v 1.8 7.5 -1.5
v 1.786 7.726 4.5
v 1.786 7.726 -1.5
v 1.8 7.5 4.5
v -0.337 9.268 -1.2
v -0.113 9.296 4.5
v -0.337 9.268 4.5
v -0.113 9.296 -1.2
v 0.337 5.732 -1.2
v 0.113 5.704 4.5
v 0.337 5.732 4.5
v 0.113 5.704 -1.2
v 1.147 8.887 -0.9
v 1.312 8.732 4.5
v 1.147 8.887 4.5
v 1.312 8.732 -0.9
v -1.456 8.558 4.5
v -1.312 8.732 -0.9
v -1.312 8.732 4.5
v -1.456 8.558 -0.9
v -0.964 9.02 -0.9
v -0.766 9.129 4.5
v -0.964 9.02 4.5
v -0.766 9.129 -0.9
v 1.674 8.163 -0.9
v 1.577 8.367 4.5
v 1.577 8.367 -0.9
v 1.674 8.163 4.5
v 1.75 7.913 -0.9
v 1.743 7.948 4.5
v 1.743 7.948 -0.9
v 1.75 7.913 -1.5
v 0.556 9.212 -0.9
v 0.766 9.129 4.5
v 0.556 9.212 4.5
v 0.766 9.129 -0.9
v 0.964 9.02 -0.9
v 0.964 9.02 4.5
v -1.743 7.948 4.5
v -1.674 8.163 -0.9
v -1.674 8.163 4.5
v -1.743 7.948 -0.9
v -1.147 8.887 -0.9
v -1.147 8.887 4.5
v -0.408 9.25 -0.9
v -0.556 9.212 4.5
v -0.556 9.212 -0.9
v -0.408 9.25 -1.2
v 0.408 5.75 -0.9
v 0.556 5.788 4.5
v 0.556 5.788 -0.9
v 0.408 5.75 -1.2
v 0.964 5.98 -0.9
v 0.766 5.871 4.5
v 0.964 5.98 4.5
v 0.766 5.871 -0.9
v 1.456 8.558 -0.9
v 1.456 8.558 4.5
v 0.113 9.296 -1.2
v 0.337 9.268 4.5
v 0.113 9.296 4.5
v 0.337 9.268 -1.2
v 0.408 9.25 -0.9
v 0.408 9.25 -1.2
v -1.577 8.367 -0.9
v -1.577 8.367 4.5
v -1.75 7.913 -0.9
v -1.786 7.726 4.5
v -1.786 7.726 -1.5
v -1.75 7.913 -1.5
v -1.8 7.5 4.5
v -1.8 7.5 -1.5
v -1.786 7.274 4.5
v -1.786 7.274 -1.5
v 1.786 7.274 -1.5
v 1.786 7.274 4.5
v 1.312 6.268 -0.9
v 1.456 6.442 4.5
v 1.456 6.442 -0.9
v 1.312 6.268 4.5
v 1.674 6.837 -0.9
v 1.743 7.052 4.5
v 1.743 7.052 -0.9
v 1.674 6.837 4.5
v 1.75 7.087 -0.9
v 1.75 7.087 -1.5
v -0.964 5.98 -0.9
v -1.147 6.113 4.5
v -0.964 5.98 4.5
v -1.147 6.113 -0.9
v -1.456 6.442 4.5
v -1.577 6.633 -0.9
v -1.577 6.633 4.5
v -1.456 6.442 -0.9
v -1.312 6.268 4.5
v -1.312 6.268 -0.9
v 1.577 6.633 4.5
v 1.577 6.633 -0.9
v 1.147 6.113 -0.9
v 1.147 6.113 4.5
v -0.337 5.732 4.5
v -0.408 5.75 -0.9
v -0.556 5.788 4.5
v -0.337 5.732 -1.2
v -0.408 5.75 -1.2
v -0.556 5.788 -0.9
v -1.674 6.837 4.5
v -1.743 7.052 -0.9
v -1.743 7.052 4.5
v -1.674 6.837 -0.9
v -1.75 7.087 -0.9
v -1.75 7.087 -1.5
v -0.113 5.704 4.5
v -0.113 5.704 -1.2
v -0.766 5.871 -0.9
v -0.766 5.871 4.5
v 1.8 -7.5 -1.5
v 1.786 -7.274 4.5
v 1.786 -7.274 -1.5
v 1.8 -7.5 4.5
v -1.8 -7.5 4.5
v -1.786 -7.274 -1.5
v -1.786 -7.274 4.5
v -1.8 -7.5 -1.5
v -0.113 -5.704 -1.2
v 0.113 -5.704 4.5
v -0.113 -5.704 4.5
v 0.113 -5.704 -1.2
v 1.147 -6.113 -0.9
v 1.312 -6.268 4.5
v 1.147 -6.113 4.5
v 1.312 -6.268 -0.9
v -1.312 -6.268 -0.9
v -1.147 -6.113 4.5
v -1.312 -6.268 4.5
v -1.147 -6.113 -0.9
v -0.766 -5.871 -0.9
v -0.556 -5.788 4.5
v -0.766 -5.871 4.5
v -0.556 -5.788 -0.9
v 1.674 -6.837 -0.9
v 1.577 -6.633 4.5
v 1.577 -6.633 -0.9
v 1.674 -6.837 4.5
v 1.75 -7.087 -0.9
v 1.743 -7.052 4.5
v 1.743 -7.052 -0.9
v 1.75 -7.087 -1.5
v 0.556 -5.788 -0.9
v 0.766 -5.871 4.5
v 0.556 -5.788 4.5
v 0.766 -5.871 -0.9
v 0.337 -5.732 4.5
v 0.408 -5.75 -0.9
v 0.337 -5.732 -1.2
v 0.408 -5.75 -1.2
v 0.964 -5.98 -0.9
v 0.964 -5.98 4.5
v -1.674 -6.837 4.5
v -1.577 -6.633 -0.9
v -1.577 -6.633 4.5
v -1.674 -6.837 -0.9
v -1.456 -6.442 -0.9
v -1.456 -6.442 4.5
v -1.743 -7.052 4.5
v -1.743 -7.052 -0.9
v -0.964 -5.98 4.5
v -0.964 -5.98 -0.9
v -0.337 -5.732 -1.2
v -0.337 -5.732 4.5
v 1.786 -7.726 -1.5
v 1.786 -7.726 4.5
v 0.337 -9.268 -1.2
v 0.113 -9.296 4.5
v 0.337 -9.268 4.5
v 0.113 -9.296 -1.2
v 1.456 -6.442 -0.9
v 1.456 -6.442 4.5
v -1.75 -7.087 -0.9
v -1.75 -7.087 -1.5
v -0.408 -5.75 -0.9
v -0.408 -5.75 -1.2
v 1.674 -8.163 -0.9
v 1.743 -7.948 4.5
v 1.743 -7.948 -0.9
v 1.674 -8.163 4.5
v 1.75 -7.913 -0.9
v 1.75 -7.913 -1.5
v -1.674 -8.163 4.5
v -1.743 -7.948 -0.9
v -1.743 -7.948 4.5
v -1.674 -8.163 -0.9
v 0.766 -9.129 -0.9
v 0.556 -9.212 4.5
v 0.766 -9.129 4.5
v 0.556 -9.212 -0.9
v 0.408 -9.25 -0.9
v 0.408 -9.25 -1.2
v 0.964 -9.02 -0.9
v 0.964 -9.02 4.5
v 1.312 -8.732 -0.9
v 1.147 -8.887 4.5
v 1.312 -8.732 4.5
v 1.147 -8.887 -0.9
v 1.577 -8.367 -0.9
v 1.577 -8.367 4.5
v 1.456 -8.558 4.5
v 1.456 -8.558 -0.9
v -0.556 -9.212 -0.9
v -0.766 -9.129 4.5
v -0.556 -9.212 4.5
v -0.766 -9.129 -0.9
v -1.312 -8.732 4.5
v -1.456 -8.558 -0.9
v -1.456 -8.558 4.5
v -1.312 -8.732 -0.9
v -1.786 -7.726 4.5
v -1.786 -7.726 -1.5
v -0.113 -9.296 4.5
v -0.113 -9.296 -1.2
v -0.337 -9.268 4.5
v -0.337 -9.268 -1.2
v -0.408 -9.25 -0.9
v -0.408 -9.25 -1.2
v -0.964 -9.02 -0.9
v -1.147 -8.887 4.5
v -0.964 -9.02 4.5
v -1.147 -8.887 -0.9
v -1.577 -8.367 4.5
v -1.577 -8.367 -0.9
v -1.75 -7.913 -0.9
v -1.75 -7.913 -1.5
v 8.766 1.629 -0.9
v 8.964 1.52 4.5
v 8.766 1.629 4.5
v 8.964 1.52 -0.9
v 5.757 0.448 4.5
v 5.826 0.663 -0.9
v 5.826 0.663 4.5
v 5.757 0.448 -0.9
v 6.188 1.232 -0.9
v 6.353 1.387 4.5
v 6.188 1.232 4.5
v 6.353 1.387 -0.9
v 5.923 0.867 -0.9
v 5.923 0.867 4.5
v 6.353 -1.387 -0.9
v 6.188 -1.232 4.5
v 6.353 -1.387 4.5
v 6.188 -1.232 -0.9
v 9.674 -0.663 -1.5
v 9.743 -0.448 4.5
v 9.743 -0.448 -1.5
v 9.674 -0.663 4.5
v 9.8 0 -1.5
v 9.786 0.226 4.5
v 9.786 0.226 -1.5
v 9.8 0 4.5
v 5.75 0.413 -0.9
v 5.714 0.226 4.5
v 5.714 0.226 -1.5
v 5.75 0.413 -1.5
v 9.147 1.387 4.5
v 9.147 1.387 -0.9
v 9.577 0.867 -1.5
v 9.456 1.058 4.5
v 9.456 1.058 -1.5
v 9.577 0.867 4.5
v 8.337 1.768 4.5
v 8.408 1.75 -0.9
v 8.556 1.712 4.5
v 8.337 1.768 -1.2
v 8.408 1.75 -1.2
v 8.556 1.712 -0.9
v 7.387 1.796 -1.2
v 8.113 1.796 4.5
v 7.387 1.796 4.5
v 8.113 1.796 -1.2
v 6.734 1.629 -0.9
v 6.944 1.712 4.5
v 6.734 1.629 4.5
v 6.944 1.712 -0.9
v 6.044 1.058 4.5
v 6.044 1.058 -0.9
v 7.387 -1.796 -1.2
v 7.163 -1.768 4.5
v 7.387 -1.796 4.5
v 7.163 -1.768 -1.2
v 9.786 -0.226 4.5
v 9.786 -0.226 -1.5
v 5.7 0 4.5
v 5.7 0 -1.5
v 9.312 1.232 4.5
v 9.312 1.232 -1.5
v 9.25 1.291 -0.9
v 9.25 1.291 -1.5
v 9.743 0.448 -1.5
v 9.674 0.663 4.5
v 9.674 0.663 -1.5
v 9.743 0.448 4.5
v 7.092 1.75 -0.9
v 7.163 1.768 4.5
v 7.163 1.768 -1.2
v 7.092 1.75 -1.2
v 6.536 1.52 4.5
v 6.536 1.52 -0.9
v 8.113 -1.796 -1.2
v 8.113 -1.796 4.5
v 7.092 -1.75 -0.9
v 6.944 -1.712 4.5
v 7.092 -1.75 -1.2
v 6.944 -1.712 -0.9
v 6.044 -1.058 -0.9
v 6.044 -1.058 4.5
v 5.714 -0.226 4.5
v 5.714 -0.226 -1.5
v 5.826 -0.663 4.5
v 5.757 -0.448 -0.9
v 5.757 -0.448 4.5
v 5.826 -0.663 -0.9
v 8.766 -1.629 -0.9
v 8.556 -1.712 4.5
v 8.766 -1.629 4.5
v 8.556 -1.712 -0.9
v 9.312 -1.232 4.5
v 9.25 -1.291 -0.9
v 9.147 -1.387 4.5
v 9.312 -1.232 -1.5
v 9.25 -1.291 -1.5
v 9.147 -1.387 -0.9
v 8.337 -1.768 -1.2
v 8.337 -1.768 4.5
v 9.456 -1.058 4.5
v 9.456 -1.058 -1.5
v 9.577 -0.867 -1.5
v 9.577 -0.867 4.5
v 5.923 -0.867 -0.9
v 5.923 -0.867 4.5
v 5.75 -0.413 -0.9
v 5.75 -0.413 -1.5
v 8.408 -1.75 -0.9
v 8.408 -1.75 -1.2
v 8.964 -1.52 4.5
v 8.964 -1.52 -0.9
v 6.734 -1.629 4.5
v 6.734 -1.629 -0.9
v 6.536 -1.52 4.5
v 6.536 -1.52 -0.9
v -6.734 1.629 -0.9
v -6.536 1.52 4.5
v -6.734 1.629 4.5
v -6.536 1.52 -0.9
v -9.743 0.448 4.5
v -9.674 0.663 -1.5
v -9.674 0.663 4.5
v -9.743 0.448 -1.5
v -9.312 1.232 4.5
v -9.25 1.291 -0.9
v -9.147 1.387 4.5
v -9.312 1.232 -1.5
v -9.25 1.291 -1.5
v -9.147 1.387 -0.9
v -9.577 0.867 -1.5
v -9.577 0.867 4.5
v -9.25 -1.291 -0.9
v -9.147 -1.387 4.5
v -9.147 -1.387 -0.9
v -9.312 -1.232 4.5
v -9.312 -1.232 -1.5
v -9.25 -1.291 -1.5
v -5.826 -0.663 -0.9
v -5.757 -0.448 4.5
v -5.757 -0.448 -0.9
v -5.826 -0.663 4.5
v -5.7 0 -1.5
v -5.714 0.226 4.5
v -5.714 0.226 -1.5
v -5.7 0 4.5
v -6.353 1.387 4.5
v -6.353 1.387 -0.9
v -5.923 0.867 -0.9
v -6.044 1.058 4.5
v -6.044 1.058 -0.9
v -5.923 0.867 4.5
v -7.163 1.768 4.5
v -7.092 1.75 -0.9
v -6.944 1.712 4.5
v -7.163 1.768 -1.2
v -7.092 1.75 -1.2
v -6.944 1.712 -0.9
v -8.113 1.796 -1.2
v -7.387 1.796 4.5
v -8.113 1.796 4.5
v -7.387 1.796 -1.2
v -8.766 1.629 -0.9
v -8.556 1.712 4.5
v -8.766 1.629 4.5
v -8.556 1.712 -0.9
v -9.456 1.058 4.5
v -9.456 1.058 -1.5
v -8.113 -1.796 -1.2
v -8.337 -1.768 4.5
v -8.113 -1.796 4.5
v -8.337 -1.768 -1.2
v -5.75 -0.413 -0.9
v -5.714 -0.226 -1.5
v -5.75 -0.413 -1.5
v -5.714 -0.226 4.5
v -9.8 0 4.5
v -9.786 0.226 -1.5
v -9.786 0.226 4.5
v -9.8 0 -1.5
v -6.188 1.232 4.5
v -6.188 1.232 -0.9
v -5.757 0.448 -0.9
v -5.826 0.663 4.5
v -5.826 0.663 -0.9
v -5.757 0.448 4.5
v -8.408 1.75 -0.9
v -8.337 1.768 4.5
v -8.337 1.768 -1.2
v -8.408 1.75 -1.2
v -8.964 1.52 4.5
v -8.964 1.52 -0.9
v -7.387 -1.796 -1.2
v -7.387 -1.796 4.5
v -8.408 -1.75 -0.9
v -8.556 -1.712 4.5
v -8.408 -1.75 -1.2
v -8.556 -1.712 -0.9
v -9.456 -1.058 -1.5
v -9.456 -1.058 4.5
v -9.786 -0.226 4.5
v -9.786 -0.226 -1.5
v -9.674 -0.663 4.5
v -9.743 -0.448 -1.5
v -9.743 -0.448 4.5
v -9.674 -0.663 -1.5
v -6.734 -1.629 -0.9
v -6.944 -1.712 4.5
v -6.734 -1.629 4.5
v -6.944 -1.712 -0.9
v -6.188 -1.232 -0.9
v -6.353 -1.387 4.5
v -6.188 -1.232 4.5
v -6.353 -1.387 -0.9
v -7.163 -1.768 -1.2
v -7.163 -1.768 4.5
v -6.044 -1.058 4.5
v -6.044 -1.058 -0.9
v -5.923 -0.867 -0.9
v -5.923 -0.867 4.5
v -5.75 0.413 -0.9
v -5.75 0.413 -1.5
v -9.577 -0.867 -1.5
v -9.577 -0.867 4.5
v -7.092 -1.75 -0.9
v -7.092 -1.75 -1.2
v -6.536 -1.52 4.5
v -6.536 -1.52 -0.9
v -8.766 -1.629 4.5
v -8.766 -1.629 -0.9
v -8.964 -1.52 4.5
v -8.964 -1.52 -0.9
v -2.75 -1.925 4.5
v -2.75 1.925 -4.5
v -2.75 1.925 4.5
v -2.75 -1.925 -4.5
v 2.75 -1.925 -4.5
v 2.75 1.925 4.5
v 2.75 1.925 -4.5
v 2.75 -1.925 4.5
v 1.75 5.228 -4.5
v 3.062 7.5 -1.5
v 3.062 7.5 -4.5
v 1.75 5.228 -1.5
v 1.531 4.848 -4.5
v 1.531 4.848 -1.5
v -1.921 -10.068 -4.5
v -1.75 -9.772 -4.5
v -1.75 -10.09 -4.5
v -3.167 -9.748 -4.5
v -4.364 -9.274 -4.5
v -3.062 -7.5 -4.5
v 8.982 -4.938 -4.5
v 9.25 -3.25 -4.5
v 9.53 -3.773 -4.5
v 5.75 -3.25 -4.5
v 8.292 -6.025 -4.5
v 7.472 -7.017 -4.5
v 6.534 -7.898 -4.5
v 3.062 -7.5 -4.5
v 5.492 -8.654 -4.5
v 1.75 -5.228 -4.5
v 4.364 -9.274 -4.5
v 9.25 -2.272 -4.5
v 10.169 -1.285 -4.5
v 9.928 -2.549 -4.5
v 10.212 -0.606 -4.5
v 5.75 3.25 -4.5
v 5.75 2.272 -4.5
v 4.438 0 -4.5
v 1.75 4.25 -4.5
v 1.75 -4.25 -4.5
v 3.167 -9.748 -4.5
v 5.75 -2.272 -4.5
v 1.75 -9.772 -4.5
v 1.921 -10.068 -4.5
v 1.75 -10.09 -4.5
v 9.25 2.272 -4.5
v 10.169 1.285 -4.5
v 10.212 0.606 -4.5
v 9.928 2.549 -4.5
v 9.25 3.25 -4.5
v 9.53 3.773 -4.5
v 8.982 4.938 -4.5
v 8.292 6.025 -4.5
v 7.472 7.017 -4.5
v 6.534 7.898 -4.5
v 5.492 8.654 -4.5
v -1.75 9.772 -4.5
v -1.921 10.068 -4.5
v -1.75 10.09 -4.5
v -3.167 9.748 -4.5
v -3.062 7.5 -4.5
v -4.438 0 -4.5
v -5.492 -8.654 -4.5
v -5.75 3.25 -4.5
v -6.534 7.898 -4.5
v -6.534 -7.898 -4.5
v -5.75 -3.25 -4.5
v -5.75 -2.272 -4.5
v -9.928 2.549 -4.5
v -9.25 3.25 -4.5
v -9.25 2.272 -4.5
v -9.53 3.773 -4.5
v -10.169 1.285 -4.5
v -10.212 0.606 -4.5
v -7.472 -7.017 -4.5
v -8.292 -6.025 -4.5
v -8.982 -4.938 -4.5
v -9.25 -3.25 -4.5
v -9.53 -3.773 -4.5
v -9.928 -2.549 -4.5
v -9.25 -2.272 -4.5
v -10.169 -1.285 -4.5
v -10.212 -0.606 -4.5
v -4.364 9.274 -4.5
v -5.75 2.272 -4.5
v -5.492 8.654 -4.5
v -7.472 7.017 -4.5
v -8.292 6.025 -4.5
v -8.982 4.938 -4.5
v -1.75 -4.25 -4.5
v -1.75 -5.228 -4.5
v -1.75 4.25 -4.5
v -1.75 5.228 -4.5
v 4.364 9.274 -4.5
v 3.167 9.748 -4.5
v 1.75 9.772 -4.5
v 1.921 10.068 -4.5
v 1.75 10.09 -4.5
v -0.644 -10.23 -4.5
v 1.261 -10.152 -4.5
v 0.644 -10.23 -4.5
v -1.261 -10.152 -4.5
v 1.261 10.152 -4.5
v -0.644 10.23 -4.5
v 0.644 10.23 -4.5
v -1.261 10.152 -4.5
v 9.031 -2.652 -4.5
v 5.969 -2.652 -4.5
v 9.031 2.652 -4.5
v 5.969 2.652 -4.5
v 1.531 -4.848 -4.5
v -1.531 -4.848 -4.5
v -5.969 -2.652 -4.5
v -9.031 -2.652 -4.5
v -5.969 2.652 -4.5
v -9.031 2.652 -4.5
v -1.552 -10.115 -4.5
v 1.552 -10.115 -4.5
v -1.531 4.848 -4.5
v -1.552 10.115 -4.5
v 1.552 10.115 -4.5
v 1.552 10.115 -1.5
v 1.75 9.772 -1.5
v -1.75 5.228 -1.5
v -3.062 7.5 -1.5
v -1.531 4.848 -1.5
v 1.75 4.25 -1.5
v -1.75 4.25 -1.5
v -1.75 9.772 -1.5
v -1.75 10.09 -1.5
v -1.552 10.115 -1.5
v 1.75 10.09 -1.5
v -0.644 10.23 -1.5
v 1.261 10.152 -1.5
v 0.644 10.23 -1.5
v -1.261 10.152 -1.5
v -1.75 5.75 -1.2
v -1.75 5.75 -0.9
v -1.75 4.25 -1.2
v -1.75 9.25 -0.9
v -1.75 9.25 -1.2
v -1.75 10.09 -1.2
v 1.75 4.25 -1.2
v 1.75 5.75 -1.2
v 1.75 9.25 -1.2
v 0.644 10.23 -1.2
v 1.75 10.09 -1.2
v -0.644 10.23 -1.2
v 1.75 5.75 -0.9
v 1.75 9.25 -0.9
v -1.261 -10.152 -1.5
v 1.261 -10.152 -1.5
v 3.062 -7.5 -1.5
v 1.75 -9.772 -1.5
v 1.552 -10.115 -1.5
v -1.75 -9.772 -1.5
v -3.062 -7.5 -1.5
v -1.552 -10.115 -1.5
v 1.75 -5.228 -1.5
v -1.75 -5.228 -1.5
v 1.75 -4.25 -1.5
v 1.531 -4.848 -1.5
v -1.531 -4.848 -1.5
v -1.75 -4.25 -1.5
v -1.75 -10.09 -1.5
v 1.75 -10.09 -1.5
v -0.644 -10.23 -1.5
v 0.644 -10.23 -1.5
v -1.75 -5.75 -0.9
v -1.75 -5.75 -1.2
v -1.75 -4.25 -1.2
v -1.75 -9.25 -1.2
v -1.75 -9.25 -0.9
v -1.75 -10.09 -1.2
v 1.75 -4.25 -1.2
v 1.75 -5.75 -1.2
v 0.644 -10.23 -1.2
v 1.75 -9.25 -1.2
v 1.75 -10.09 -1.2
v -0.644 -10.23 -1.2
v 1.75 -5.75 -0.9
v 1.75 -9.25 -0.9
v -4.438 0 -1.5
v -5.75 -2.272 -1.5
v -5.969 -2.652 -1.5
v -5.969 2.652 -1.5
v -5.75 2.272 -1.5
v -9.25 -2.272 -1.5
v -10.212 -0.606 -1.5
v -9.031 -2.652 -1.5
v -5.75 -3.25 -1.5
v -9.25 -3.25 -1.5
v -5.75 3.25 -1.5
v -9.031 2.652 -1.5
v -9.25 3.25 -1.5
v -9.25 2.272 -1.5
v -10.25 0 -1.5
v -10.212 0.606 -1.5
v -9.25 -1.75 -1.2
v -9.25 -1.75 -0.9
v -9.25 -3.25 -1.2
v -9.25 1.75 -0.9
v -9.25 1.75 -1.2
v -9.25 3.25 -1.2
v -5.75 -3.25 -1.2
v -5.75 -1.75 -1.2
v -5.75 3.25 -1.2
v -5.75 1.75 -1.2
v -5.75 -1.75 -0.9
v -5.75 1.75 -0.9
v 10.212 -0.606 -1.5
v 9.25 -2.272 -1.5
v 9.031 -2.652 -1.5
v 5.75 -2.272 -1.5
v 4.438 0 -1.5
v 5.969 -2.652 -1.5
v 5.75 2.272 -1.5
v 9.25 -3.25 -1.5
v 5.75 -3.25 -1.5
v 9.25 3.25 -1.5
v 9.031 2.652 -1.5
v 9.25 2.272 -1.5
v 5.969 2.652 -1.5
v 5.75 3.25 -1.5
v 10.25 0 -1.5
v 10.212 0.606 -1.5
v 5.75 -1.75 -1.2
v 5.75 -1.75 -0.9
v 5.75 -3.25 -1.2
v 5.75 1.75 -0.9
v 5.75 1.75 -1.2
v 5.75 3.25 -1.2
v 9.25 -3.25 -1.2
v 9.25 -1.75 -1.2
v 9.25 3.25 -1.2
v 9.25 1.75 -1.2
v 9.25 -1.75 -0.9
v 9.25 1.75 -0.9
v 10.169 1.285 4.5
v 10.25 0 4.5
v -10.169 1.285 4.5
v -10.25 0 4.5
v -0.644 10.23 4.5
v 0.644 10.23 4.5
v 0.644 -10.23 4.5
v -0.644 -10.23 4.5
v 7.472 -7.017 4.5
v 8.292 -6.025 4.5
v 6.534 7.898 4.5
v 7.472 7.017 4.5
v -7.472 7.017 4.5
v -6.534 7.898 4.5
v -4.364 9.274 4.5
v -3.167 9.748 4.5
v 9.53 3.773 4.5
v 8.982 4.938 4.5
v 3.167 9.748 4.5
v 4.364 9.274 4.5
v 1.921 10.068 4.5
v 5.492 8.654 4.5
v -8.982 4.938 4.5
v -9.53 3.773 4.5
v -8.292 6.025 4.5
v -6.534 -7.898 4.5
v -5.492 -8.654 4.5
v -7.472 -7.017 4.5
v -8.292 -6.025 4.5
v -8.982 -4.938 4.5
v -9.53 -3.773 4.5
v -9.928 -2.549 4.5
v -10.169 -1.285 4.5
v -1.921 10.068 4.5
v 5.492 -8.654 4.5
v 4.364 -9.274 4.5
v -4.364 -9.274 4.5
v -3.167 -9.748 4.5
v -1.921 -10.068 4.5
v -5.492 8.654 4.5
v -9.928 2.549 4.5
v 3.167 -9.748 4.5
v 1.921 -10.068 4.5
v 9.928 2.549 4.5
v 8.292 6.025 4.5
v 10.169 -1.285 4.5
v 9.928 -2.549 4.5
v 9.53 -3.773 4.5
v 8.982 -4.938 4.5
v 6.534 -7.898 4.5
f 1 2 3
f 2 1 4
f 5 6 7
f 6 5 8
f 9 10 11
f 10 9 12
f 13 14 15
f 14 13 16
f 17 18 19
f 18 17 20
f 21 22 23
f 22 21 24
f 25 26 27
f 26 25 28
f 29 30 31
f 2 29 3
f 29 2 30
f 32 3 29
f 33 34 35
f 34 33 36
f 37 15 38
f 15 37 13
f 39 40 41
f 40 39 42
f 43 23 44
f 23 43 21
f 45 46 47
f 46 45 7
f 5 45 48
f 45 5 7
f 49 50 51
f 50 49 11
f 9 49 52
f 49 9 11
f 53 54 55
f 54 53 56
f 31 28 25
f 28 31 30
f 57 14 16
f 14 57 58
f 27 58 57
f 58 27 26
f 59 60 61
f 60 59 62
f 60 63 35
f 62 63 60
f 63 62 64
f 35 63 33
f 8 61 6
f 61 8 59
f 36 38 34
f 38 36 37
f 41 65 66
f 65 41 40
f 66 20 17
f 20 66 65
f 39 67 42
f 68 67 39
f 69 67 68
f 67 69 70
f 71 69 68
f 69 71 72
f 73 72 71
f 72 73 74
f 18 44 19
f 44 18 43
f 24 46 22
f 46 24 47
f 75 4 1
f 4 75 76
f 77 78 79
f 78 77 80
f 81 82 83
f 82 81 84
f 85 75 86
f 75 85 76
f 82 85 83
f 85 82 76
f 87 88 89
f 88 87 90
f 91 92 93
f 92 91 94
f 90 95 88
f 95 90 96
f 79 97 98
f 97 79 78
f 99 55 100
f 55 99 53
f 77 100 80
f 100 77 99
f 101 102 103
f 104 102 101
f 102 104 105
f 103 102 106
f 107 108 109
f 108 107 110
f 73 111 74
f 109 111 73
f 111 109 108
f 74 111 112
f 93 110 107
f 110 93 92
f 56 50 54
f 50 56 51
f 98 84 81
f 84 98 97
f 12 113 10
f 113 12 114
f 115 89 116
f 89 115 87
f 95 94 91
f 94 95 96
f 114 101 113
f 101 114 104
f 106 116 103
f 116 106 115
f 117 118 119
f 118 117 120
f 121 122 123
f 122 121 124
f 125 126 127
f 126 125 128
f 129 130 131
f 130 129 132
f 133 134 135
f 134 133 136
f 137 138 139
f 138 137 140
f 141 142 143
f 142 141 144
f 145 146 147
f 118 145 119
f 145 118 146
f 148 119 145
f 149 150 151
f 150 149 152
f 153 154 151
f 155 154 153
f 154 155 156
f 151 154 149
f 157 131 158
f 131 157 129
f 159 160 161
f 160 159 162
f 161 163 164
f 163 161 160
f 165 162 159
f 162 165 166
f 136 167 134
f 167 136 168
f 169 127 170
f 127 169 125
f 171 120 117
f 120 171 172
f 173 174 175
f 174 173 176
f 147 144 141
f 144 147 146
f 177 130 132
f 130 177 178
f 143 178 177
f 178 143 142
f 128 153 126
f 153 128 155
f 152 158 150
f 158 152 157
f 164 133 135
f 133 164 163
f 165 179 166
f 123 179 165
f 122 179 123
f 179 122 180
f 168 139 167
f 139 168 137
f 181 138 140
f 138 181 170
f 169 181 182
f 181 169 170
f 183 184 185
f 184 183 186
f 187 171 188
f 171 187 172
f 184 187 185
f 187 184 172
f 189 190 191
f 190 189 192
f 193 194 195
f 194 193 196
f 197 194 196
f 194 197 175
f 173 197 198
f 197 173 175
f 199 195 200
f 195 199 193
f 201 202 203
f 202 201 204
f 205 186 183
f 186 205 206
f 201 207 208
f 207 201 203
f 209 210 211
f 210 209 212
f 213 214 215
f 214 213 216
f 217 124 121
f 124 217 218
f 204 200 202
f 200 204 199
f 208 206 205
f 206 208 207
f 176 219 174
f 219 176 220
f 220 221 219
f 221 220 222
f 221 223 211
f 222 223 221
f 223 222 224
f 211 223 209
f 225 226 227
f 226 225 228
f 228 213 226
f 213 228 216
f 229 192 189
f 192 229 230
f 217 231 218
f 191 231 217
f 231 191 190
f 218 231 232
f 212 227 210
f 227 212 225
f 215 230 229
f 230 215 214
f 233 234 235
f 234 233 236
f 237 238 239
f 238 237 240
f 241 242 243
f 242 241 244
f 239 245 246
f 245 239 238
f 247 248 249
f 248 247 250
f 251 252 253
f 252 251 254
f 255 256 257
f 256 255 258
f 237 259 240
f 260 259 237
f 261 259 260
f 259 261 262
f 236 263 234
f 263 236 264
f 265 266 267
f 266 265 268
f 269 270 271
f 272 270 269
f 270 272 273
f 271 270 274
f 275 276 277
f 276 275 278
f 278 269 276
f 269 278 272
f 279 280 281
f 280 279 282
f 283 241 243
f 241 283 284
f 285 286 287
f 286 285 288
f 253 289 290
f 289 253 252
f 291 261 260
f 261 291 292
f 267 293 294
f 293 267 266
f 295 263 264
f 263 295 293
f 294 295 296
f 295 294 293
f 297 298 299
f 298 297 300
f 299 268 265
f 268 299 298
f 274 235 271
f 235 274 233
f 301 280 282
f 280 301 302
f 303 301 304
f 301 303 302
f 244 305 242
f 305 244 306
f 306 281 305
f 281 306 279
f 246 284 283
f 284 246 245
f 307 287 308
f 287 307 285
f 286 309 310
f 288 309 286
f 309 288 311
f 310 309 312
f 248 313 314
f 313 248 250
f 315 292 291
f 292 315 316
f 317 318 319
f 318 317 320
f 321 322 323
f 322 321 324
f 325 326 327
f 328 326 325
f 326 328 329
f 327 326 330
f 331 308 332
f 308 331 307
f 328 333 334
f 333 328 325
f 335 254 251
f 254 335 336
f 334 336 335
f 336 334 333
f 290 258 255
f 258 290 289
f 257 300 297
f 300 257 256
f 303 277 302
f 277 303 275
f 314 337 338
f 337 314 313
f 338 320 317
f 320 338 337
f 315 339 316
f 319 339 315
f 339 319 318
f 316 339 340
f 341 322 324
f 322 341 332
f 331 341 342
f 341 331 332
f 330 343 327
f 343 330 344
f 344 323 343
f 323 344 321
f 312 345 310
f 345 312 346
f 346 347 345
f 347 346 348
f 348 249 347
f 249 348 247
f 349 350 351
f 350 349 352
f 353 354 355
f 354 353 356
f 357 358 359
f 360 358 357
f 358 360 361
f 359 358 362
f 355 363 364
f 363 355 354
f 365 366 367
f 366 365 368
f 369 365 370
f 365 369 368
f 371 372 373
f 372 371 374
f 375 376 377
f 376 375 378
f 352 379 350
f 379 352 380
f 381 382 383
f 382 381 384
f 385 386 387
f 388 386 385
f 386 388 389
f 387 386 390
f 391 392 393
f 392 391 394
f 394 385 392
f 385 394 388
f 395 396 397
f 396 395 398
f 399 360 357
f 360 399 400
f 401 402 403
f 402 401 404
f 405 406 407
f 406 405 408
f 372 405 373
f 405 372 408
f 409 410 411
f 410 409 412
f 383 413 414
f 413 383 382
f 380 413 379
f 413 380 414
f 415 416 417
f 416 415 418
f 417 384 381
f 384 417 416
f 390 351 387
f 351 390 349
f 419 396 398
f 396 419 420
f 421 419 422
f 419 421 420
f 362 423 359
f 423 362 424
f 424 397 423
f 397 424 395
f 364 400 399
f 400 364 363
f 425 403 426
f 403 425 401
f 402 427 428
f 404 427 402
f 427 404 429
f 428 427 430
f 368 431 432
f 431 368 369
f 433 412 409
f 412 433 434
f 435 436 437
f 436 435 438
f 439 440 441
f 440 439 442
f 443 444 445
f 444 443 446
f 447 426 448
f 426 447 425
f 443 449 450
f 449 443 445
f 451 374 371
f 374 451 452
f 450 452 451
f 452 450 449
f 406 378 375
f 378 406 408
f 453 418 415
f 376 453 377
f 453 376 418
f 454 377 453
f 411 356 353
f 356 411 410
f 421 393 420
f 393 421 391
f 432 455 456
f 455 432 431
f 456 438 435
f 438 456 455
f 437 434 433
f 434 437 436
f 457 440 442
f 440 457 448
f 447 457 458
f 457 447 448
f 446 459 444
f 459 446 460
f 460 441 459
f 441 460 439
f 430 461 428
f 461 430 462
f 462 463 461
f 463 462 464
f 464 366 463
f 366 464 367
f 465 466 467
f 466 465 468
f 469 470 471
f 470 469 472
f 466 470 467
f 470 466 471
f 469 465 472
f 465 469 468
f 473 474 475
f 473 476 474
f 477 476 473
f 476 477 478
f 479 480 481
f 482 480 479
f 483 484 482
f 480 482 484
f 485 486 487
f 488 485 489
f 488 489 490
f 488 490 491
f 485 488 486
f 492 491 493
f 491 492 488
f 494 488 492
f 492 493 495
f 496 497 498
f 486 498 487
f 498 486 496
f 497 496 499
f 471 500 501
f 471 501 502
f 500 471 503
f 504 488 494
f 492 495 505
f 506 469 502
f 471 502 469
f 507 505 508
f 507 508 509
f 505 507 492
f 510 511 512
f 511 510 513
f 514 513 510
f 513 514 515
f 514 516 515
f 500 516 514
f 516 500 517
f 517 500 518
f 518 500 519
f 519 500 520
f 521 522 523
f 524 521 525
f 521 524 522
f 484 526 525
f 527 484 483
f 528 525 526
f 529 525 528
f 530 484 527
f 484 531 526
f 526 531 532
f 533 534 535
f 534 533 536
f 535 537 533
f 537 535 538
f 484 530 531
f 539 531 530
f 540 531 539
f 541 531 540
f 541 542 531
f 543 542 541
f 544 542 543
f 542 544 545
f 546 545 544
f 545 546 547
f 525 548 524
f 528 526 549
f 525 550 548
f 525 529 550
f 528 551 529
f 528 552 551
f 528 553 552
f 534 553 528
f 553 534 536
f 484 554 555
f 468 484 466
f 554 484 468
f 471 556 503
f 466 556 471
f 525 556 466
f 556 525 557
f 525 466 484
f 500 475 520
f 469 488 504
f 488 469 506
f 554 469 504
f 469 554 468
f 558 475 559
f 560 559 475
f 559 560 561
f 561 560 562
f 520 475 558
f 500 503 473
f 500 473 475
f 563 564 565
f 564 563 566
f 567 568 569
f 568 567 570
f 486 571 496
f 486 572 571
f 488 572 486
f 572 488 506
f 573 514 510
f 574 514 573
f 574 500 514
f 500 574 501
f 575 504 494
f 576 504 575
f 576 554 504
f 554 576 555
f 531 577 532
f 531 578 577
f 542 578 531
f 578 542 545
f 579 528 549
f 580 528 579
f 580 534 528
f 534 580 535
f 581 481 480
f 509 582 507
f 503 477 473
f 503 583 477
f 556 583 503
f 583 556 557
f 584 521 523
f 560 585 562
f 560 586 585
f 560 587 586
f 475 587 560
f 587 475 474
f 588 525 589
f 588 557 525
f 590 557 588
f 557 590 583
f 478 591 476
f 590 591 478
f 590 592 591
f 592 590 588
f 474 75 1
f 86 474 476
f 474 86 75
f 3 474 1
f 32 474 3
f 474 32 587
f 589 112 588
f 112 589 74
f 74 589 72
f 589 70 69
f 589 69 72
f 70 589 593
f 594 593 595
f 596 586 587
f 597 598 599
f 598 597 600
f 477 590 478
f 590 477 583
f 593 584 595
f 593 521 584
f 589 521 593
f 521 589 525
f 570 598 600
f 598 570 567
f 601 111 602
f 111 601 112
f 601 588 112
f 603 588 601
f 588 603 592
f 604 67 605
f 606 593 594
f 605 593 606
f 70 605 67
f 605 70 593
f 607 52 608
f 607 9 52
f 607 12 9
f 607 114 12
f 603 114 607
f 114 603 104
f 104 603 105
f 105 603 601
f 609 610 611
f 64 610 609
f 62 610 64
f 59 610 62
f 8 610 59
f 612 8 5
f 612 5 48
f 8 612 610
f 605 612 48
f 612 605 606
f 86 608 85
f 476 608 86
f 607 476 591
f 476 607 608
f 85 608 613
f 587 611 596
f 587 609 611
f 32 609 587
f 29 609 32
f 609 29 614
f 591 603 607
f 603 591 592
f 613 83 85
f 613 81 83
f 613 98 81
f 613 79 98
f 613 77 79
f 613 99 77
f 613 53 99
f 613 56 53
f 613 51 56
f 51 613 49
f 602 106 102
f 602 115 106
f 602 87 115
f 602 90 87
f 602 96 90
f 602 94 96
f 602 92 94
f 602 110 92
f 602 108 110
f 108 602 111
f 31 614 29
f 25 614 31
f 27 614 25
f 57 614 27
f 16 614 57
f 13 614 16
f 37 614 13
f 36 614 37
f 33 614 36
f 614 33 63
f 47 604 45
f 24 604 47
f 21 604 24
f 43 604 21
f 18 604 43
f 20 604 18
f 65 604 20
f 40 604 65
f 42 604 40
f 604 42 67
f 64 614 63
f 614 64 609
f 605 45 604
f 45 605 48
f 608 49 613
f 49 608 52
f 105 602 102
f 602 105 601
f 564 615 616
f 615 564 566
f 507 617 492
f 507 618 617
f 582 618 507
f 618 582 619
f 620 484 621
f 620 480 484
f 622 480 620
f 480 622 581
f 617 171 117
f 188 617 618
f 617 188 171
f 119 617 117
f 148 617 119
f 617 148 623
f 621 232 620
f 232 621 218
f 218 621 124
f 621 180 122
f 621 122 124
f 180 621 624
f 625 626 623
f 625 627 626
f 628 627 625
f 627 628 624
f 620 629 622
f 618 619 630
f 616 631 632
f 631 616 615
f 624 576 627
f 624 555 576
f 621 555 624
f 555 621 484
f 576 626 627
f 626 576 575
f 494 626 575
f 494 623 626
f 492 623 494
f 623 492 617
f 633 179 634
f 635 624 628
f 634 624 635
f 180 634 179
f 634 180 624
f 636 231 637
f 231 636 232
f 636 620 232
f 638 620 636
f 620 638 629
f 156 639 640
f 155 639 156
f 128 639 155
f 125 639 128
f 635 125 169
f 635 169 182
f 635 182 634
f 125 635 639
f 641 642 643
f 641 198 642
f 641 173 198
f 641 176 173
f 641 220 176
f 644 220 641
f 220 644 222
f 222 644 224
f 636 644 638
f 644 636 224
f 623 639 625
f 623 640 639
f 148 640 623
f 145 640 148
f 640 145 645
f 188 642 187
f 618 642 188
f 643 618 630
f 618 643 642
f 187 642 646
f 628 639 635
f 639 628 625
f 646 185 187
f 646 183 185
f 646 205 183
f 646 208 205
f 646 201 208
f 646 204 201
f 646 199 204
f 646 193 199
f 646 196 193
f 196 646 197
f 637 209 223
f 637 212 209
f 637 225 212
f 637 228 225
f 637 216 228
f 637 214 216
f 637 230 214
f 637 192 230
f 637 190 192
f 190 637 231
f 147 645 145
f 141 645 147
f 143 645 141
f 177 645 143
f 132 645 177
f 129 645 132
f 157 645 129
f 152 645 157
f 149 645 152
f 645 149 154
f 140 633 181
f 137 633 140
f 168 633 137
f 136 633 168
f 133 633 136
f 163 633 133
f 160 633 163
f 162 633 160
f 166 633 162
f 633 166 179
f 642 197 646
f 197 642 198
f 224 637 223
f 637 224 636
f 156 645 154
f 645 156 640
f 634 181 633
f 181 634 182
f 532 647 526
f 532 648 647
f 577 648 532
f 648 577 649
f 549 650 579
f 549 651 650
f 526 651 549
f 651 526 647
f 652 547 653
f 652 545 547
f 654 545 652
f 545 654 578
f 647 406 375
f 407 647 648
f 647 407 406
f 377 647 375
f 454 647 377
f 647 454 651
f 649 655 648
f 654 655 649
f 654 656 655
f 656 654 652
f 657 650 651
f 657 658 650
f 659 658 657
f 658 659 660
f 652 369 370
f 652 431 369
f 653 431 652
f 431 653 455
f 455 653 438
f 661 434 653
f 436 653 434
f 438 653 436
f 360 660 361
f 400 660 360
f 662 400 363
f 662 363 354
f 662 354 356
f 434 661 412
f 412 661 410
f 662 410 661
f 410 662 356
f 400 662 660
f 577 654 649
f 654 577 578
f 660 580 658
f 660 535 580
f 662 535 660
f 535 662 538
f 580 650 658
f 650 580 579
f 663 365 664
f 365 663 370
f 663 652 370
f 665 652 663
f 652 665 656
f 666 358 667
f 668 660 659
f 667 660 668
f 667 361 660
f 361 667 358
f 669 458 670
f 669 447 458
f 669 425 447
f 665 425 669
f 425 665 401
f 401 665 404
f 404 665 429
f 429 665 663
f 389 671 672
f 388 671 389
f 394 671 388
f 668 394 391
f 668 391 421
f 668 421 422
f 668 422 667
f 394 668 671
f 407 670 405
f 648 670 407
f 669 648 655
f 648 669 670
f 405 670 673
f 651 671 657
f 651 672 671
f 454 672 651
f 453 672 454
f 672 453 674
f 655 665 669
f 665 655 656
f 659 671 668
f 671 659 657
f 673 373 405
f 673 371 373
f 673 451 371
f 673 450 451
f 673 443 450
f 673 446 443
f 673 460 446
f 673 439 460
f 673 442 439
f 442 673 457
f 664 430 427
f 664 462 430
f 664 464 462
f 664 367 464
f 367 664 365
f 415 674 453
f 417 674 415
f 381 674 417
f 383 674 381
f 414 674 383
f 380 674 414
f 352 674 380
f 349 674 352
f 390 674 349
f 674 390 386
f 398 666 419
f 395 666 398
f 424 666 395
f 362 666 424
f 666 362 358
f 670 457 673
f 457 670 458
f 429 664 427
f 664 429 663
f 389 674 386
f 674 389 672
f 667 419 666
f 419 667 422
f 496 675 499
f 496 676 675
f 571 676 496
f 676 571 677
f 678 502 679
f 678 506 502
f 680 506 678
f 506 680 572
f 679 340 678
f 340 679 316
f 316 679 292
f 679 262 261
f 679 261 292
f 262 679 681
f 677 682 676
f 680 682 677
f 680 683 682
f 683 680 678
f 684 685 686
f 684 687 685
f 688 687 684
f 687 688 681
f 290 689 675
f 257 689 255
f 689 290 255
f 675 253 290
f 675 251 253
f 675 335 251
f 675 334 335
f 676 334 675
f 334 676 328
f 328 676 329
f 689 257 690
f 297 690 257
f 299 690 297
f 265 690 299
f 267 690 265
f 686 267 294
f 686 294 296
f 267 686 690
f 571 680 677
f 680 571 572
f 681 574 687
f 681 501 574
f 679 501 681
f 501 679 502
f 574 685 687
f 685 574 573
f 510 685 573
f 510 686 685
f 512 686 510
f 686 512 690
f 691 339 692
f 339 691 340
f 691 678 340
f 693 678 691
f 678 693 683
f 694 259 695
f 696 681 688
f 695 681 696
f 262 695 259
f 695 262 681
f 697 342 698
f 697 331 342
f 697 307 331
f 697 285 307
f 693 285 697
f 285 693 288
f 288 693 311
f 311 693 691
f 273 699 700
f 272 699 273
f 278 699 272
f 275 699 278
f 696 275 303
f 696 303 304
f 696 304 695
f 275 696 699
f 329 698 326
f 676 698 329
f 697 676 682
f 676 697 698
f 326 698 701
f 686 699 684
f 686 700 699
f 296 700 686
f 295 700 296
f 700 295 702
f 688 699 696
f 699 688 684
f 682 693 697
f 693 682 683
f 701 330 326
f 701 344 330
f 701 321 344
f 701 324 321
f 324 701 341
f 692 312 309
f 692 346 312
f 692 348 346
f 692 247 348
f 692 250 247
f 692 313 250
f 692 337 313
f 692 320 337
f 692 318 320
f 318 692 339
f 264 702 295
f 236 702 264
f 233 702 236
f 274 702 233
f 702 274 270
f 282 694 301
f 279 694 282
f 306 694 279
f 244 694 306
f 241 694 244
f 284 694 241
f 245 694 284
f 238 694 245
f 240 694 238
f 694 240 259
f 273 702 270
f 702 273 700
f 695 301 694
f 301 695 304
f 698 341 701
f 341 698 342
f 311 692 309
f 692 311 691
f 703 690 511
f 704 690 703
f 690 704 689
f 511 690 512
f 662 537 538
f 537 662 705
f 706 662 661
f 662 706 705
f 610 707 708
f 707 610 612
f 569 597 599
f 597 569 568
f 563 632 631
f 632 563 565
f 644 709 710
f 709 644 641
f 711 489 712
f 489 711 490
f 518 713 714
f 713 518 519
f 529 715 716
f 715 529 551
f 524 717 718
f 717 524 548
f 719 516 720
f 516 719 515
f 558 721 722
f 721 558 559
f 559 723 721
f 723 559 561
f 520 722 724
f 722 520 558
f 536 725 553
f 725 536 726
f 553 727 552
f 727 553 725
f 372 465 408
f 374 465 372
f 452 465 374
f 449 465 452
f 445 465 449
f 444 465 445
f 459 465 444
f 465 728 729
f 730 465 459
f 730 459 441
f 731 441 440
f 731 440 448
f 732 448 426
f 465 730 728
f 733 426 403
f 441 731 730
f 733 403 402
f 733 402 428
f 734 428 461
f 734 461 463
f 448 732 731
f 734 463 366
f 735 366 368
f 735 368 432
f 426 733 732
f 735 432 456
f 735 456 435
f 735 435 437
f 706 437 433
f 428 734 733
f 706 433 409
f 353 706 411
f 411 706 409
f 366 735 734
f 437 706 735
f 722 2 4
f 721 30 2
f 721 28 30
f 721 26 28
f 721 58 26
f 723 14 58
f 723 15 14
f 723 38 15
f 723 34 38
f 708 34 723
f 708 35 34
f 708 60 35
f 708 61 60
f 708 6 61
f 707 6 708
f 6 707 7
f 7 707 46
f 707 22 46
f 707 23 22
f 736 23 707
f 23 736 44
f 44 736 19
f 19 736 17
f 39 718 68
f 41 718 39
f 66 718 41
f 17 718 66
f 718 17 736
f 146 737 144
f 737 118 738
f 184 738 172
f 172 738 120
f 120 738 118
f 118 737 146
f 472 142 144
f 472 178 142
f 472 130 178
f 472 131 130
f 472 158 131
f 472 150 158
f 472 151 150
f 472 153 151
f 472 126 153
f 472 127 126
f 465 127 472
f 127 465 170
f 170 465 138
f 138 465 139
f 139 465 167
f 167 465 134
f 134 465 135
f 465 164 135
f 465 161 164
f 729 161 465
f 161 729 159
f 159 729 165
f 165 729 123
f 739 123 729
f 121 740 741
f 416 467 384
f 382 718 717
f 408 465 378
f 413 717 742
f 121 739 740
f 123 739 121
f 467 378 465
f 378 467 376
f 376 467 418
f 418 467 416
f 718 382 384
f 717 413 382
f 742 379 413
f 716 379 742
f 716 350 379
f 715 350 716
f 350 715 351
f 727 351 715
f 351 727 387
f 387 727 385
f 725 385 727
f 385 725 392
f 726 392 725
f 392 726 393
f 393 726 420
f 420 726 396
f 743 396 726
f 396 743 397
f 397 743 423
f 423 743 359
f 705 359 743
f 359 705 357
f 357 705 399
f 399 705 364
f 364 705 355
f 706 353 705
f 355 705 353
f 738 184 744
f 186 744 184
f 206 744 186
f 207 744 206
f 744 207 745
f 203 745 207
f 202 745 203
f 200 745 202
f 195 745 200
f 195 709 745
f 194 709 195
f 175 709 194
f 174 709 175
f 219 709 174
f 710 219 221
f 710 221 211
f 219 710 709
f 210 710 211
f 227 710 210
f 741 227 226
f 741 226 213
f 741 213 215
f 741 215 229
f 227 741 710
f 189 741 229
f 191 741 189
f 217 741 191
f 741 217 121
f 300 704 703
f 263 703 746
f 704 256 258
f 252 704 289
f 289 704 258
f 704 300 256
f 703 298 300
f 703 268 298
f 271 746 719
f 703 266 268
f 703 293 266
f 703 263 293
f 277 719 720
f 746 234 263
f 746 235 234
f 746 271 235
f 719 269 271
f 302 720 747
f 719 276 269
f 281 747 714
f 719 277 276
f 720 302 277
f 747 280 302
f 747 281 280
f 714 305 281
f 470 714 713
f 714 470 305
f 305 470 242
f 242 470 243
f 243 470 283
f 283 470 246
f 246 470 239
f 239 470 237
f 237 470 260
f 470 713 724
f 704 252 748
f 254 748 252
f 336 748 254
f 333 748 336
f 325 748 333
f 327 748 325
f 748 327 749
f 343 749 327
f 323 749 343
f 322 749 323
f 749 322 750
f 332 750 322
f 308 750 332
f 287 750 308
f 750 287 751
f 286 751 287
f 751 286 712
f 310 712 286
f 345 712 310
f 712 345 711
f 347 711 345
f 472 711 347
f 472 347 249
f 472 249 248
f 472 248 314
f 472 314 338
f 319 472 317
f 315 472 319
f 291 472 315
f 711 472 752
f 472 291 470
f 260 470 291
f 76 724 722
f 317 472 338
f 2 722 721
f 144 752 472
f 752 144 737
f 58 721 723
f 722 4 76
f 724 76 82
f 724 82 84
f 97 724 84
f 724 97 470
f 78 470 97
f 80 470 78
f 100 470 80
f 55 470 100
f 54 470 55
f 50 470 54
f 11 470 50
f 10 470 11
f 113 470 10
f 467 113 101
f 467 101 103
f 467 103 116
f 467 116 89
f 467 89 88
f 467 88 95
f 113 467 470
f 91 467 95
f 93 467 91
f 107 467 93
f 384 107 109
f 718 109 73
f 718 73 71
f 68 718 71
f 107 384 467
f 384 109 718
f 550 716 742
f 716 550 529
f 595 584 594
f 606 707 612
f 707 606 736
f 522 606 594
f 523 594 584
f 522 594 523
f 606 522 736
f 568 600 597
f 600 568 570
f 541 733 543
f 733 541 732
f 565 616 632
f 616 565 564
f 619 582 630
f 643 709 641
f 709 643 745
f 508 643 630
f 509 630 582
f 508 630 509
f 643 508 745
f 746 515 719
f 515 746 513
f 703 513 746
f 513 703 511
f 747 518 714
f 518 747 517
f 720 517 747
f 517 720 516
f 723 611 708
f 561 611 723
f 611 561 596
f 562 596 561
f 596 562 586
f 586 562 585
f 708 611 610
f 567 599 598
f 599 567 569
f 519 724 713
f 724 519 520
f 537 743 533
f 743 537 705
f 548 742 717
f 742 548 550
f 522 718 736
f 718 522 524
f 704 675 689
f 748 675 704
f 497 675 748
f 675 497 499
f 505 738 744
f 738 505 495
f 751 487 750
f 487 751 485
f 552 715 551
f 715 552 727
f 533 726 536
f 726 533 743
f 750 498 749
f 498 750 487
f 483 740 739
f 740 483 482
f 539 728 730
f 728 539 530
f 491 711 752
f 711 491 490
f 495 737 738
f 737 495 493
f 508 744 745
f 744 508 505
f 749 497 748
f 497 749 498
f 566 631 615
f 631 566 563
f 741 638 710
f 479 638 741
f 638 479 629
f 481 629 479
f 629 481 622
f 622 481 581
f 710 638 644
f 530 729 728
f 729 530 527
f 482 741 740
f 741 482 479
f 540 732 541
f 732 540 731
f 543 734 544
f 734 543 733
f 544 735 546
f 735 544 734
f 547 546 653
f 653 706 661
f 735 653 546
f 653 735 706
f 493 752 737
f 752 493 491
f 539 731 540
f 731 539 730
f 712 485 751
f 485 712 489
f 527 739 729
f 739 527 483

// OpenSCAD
$fn = 50;


difference() {
	union() {
		translate(v = [0, 0, -4.5000000000]) {
			rotate(a = [0, 0, 0]) {
				cylinder(h = 9, r = 10.2500000000);
			}
		}
	}
	union() {
		translate(v = [0, 7.5000000000, -125.0000000000]) {
			rotate(a = [0, 0, 0]) {
				cylinder(h = 250, r = 1.8000000000);
			}
		}
		translate(v = [0, -7.5000000000, -125.0000000000]) {
			rotate(a = [0, 0, 0]) {
				cylinder(h = 250, r = 1.8000000000);
			}
		}
		translate(v = [7.7500000000, 0, -125.0000000000]) {
			rotate(a = [0, 0, 0]) {
				hull() {
					translate(v = [0.2500000000, 0, 0]) {
						rotate(a = [0, 0, 0]) {
							translate(v = [0, 0, 0]) {
								rotate(a = [0, 0, 0]) {
									cylinder(h = 250, r = 1.8000000000);
								}
							}
						}
					}
					translate(v = [-0.2500000000, 0, 0]) {
						rotate(a = [0, 0, 0]) {
							translate(v = [0, 0, 0]) {
								rotate(a = [0, 0, 0]) {
									cylinder(h = 250, r = 1.8000000000);
								}
							}
						}
					}
				}
			}
		}
		translate(v = [-7.7500000000, 0, -125.0000000000]) {
			rotate(a = [0, 0, 0]) {
				hull() {
					translate(v = [0.2500000000, 0, 0]) {
						rotate(a = [0, 0, 0]) {
							translate(v = [0, 0, 0]) {
								rotate(a = [0, 0, 0]) {
									cylinder(h = 250, r = 1.8000000000);
								}
							}
						}
					}
					translate(v = [-0.2500000000, 0, 0]) {
						rotate(a = [0, 0, 0]) {
							translate(v = [0, 0, 0]) {
								rotate(a = [0, 0, 0]) {
									cylinder(h = 250, r = 1.8000000000);
								}
							}
						}
					}
				}
			}
		}
		translate(v = [-2.7500000000, -1.9250000000, -50]) {
			rotate(a = [0, 0, 0]) {
				cube(size = [5.5000000000, 3.8500000000, 100]);
			}
		}
		translate(v = [0, 7.5000000000, -4.5000000000]) {
			rotate(a = [0, 0, 0]) {
				translate(v = [0, 0, 0]) {
					rotate(a = [0, 0, 0]) {
						linear_extrude(height = 3) {
							polygon(points = [[3.0620000000, 0.0000000000], [1.5310000000, 2.6517697864], [-1.5310000000, 2.6517697864], [-3.0620000000, 0.0000000000], [-1.5310000000, -2.6517697864], [1.5310000000, -2.6517697864]]);
						}
					}
				}
			}
		}
		#translate(v = [-1.7500000000, 4.2500000000, -1.5000000000]) {
			rotate(a = [0, 0, 0]) {
				cube(size = [3.5000000000, 6.5000000000, 0.3000000000]);
			}
		}
		#translate(v = [-1.7500000000, 5.7500000000, -1.2000000000]) {
			rotate(a = [0, 0, 0]) {
				cube(size = [3.5000000000, 3.5000000000, 0.3000000000]);
			}
		}
		#translate(v = [-1.7500000000, 4.2500000000, -4.8000000000]) {
			rotate(a = [0, 0, 0]) {
				cube(size = [3.5000000000, 6.5000000000, 0.3000000000]);
			}
		}
		#translate(v = [-1.7500000000, 5.7500000000, -5.1000000000]) {
			rotate(a = [0, 0, 0]) {
				cube(size = [3.5000000000, 3.5000000000, 0.3000000000]);
			}
		}
		translate(v = [0, -7.5000000000, -4.5000000000]) {
			rotate(a = [0, 0, 0]) {
				translate(v = [0, 0, 0]) {
					rotate(a = [0, 0, 0]) {
						linear_extrude(height = 3) {
							polygon(points = [[3.0620000000, 0.0000000000], [1.5310000000, 2.6517697864], [-1.5310000000, 2.6517697864], [-3.0620000000, 0.0000000000], [-1.5310000000, -2.6517697864], [1.5310000000, -2.6517697864]]);
						}
					}
				}
			}
		}
		#translate(v = [-1.7500000000, -10.7500000000, -1.5000000000]) {
			rotate(a = [0, 0, 0]) {
				cube(size = [3.5000000000, 6.5000000000, 0.3000000000]);
			}
		}
		#translate(v = [-1.7500000000, -9.2500000000, -1.2000000000]) {
			rotate(a = [0, 0, 0]) {
				cube(size = [3.5000000000, 3.5000000000, 0.3000000000]);
			}
		}
		#translate(v = [-1.7500000000, -10.7500000000, -4.8000000000]) {
			rotate(a = [0, 0, 0]) {
				cube(size = [3.5000000000, 6.5000000000, 0.3000000000]);
			}
		}
		#translate(v = [-1.7500000000, -9.2500000000, -5.1000000000]) {
			rotate(a = [0, 0, 0]) {
				cube(size = [3.5000000000, 3.5000000000, 0.3000000000]);
			}
		}
		translate(v = [-7.5000000000, 0, -4.5000000000]) {
			rotate(a = [0, 0, 0]) {
				translate(v = [0, 0, 0]) {
					rotate(a = [0, 0, 0]) {
						linear_extrude(height = 3) {
							polygon(points = [[3.0620000000, 0.0000000000], [1.5310000000, 2.6517697864], [-1.5310000000, 2.6517697864], [-3.0620000000, 0.0000000000], [-1.5310000000, -2.6517697864], [1.5310000000, -2.6517697864]]);
						}
					}
				}
			}
		}
		#translate(v = [-9.2500000000, -3.2500000000, -1.5000000000]) {
			rotate(a = [0, 0, 0]) {
				cube(size = [3.5000000000, 6.5000000000, 0.3000000000]);
			}
		}
		#translate(v = [-9.2500000000, -1.7500000000, -1.2000000000]) {
			rotate(a = [0, 0, 0]) {
				cube(size = [3.5000000000, 3.5000000000, 0.3000000000]);
			}
		}
		#translate(v = [-9.2500000000, -3.2500000000, -4.8000000000]) {
			rotate(a = [0, 0, 0]) {
				cube(size = [3.5000000000, 6.5000000000, 0.3000000000]);
			}
		}
		#translate(v = [-9.2500000000, -1.7500000000, -5.1000000000]) {
			rotate(a = [0, 0, 0]) {
				cube(size = [3.5000000000, 3.5000000000, 0.3000000000]);
			}
		}
		translate(v = [7.5000000000, 0, -4.5000000000]) {
			rotate(a = [0, 0, 0]) {
				translate(v = [0, 0, 0]) {
					rotate(a = [0, 0, 0]) {
						linear_extrude(height = 3) {
							polygon(points = [[3.0620000000, 0.0000000000], [1.5310000000, 2.6517697864], [-1.5310000000, 2.6517697864], [-3.0620000000, 0.0000000000], [-1.5310000000, -2.6517697864], [1.5310000000, -2.6517697864]]);
						}
					}
				}
			}
		}
		#translate(v = [5.7500000000, -3.2500000000, -1.5000000000]) {
			rotate(a = [0, 0, 0]) {
				cube(size = [3.5000000000, 6.5000000000, 0.3000000000]);
			}
		}
		#translate(v = [5.7500000000, -1.7500000000, -1.2000000000]) {
			rotate(a = [0, 0, 0]) {
				cube(size = [3.5000000000, 3.5000000000, 0.3000000000]);
			}
		}
		#translate(v = [5.7500000000, -3.2500000000, -4.8000000000]) {
			rotate(a = [0, 0, 0]) {
				cube(size = [3.5000000000, 6.5000000000, 0.3000000000]);
			}
		}
		#translate(v = [5.7500000000, -1.7500000000, -5.1000000000]) {
			rotate(a = [0, 0, 0]) {
				cube(size = [3.5000000000, 3.5000000000, 0.3000000000]);
			}
		}
	}
}
